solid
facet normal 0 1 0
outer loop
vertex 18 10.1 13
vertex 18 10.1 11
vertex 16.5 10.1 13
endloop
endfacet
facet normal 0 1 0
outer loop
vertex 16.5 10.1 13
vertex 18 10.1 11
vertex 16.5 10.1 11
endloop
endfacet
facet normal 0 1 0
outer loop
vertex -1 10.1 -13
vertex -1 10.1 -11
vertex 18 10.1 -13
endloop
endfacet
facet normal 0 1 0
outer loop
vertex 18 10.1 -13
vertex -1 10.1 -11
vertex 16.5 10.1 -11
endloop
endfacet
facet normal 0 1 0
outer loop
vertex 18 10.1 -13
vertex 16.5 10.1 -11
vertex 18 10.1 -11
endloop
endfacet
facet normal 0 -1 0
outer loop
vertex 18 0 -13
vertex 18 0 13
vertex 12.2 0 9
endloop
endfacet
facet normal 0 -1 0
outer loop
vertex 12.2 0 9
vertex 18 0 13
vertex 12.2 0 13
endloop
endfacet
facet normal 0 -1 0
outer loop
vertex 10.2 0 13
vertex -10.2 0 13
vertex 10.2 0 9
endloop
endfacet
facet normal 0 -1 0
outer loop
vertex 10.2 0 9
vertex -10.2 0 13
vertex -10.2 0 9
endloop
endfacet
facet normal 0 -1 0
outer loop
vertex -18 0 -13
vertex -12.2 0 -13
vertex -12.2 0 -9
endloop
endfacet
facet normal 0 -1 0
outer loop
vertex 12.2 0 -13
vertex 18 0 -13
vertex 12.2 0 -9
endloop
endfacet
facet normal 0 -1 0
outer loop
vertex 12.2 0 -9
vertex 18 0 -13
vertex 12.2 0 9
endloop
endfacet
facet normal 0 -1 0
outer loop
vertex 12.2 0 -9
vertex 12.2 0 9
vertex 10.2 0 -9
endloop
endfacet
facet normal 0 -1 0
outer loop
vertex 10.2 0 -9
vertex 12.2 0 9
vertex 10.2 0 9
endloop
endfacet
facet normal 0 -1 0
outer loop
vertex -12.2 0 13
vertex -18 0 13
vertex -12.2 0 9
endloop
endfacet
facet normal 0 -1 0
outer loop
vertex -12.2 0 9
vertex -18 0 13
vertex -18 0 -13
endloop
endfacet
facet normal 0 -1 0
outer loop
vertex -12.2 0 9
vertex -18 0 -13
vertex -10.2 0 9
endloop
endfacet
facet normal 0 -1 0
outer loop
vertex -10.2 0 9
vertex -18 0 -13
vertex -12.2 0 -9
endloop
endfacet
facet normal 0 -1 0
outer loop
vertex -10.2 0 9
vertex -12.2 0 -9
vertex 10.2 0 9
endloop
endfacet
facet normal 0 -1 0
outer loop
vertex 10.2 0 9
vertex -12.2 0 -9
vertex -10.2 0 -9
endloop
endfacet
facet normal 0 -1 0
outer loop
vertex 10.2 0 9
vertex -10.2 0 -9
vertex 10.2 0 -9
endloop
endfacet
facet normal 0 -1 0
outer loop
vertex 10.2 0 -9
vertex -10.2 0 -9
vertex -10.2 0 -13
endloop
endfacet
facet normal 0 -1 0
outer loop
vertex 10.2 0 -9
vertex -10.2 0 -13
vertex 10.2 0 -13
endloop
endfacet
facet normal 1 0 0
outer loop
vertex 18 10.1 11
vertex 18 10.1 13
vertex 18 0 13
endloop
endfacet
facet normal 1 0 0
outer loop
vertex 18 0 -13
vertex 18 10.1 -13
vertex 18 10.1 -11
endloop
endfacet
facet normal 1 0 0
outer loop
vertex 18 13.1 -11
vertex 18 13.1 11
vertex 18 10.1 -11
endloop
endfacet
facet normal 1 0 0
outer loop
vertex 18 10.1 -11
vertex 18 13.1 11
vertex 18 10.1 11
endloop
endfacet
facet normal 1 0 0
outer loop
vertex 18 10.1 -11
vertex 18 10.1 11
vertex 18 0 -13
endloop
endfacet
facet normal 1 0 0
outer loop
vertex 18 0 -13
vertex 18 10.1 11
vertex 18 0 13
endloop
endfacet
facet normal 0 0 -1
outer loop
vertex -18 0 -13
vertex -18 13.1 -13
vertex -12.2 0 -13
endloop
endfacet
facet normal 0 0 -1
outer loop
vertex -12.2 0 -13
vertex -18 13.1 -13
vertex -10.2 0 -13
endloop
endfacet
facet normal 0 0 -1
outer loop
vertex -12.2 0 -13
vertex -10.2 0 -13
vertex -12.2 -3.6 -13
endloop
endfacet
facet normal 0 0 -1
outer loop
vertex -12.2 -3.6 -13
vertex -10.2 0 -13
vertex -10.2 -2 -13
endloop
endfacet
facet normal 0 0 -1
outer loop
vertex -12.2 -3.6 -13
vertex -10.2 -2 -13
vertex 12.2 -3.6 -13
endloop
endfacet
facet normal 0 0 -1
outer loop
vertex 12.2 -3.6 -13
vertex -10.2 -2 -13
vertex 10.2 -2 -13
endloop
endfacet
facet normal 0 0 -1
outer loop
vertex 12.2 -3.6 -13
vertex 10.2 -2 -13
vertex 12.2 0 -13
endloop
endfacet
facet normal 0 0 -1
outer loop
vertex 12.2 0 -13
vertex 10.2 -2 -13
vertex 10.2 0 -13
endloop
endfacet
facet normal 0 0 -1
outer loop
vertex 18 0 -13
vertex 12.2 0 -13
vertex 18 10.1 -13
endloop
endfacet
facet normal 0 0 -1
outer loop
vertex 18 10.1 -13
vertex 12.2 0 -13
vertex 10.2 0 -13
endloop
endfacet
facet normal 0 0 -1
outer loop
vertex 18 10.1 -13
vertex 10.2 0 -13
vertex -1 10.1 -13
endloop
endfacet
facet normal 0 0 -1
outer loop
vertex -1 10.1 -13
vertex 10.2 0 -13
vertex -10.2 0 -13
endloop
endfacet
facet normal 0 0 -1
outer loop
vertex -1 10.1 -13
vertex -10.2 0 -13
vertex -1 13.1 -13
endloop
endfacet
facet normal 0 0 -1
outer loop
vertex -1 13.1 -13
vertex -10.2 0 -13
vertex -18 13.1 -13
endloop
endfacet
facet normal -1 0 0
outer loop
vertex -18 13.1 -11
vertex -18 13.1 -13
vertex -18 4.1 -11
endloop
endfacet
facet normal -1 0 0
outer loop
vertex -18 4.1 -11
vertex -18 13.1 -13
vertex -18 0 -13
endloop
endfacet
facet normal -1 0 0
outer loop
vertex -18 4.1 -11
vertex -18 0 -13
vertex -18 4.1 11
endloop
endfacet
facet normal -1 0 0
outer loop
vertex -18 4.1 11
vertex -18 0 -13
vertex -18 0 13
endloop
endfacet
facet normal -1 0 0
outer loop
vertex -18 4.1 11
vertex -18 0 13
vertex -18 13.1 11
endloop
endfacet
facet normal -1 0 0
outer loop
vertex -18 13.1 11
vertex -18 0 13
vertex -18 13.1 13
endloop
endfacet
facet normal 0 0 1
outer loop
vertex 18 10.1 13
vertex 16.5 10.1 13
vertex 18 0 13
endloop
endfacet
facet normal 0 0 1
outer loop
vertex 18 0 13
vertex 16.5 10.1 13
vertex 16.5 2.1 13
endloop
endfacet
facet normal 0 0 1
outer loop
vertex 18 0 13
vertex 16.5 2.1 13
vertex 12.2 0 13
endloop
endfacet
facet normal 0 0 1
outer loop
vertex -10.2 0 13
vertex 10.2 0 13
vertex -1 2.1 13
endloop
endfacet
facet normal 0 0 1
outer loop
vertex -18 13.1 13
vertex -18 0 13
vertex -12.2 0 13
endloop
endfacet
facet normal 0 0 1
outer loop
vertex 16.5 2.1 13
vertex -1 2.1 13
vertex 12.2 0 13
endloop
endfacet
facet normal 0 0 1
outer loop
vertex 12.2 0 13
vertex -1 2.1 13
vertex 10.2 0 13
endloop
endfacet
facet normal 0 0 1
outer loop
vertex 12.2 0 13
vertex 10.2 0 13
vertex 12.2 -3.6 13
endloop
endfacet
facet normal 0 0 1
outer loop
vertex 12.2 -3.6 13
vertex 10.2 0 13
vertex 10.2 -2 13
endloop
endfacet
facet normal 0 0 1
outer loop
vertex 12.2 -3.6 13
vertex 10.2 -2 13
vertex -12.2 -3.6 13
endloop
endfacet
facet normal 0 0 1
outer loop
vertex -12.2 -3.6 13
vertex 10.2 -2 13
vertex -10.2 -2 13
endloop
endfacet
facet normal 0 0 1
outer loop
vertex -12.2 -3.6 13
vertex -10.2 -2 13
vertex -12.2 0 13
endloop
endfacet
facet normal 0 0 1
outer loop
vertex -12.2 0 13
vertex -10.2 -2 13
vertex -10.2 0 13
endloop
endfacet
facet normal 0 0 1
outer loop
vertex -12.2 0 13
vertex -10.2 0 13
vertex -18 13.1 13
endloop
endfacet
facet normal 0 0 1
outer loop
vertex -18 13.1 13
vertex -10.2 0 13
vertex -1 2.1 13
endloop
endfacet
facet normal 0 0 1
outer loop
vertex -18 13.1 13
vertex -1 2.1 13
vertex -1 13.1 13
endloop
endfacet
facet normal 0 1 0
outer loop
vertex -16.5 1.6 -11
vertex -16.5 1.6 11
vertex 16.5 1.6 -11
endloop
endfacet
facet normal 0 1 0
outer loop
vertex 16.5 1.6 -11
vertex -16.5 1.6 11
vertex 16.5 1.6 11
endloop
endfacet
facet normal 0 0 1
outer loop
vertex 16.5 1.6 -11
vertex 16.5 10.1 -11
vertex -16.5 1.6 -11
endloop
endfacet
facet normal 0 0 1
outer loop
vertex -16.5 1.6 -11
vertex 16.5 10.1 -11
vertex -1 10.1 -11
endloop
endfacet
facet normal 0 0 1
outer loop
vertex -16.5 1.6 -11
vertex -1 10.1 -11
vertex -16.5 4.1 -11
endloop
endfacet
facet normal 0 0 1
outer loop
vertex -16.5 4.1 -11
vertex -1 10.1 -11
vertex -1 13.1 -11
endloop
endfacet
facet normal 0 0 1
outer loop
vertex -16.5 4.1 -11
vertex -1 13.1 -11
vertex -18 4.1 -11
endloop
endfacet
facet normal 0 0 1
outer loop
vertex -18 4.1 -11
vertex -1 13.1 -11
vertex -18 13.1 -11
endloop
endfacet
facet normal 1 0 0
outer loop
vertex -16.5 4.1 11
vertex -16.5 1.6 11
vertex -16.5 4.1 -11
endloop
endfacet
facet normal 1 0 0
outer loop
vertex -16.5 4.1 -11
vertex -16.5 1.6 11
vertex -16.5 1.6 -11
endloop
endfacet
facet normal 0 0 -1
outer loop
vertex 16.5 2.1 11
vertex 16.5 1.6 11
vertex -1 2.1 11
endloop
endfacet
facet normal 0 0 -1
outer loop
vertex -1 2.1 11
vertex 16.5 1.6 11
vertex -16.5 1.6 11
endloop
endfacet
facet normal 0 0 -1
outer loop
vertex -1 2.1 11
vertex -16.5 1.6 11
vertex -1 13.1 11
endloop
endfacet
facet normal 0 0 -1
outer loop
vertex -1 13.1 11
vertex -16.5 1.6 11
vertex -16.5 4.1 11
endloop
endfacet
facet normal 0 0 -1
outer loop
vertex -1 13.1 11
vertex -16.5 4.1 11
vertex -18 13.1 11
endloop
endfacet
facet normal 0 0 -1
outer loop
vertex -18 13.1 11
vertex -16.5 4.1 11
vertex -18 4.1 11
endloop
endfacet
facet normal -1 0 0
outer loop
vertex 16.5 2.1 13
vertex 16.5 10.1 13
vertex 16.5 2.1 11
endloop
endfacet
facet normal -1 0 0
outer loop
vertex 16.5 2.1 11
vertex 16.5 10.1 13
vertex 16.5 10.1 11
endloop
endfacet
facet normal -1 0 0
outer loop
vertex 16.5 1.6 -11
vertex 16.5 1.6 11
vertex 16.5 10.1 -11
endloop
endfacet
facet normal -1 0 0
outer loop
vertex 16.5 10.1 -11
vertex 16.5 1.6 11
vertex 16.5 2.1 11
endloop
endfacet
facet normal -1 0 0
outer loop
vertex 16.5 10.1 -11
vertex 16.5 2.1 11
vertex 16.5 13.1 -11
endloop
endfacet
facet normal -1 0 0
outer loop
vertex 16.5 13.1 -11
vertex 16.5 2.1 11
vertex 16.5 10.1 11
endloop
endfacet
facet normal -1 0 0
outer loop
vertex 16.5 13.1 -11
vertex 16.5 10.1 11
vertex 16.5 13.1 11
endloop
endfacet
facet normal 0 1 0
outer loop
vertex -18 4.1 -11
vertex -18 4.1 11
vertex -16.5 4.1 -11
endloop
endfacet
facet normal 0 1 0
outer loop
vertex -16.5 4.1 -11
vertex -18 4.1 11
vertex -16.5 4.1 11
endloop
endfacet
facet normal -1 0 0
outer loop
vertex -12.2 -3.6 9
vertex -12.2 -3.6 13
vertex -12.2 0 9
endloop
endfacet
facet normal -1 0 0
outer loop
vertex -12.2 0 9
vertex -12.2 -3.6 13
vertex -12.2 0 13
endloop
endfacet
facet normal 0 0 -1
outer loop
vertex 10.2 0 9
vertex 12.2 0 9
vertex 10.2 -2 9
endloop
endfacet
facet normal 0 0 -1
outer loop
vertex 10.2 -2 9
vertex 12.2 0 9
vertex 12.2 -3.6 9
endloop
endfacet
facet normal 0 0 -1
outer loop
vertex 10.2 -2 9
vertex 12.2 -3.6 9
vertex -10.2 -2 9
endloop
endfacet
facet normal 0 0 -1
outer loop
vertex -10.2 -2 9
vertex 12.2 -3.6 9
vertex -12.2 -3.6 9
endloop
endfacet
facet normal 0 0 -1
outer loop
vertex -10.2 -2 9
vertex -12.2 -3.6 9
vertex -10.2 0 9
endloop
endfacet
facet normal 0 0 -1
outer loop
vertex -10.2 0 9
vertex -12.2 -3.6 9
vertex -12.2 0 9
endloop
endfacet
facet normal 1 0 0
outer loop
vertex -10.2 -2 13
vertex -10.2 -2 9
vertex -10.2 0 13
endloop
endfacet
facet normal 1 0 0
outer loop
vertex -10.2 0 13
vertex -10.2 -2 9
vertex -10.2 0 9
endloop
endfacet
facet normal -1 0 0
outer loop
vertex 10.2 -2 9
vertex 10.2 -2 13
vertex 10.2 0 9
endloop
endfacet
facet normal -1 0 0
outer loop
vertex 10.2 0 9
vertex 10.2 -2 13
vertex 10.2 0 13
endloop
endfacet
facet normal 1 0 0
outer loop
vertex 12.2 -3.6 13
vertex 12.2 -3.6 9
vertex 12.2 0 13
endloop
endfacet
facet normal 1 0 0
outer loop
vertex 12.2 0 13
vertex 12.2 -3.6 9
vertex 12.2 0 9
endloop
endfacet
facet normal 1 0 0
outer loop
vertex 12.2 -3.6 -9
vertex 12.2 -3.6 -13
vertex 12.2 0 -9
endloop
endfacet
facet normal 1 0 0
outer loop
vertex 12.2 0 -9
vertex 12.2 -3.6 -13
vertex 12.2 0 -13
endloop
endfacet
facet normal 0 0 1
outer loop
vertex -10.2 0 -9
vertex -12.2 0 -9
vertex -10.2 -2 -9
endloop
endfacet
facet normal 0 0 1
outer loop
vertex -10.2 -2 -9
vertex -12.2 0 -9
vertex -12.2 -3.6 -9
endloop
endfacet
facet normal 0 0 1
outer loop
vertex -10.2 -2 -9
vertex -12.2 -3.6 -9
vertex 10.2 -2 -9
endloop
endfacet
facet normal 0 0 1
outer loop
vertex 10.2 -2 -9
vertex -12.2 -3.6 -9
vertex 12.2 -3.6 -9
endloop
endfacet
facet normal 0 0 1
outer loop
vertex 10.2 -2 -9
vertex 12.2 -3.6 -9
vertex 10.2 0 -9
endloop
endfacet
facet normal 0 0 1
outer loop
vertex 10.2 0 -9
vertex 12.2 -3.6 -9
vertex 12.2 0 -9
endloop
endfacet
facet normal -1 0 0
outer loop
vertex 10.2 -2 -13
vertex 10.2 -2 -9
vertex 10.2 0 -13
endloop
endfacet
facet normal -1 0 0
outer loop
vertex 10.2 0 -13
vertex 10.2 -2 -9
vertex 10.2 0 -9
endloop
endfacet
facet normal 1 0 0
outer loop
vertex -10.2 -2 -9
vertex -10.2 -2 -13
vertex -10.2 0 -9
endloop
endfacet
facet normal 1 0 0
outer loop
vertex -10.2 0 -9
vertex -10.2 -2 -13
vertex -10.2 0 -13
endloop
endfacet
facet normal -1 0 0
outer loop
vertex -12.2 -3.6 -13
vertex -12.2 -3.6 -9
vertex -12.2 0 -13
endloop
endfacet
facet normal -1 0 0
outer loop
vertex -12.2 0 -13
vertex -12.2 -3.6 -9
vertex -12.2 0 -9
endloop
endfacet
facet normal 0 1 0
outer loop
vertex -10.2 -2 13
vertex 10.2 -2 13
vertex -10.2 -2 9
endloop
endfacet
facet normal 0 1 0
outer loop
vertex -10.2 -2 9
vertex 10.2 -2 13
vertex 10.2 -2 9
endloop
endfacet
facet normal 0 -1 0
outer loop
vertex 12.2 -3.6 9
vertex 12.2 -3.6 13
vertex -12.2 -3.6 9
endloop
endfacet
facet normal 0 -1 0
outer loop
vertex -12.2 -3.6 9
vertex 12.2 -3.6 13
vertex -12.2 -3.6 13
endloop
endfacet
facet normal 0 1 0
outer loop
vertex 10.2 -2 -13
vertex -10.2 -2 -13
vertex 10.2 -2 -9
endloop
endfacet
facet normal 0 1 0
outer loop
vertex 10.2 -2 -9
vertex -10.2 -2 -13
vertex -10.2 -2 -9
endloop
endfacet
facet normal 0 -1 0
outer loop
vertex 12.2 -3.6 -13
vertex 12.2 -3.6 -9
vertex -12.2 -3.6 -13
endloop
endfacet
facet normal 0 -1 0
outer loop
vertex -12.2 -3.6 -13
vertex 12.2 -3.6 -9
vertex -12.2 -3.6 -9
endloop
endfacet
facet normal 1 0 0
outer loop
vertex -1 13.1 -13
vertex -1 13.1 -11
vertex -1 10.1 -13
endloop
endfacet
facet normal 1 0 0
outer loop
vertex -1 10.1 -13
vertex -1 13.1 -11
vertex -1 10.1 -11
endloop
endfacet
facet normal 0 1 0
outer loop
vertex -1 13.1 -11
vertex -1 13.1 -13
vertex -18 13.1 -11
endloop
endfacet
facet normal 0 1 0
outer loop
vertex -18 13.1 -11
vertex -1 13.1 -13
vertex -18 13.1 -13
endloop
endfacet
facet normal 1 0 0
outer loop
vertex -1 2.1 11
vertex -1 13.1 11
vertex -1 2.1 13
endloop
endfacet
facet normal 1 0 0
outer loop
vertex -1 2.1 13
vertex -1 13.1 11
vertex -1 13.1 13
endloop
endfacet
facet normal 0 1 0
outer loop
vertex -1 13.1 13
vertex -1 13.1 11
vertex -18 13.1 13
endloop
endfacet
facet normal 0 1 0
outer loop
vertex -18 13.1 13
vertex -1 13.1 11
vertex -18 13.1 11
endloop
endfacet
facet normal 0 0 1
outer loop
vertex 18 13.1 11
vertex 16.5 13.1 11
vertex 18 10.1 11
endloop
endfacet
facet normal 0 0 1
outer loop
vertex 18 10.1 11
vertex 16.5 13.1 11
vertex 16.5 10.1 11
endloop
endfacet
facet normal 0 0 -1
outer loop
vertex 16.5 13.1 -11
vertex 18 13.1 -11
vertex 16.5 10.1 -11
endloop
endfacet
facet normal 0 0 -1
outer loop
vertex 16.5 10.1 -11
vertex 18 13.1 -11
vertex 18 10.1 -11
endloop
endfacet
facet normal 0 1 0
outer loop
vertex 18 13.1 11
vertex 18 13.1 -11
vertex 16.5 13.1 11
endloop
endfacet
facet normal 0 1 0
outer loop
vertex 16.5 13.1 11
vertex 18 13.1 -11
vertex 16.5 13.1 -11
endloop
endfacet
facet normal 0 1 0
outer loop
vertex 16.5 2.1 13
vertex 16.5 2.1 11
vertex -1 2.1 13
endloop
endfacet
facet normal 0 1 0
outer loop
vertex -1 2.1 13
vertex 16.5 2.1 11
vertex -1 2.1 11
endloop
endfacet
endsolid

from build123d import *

# Parameters (mm, degrees)
SKETCH_1_W          = 36
SKETCH_1_H          = 26
EXTRUDE_1_DEPTH     = 14.6
SKETCH_2_W          = 33
SKETCH_2_H          = 22
CUT_EXTRUDE_1_DEPTH = 13
SKETCH_3_W          = 36
SKETCH_3_H          = 26
CUT_EXTRUDE_2_DEPTH = 4.5
SKETCH_4_W          = 1.5
SKETCH_4_H          = 22
CUT_EXTRUDE_3_DEPTH = 6
SKETCH_5_W          = 2
SKETCH_5_H          = 4
EXTRUDE_2_DEPTH     = 2
SKETCH_6_W          = 24.4
SKETCH_6_H          = 4
EXTRUDE_3_DEPTH     = 1.6
SKETCH_7_W          = 17
SKETCH_7_H          = 2
SKETCH_7_W_2        = 1.5
SKETCH_7_H_2        = 22
EXTRUDE_4_DEPTH     = 3
SKETCH_8_W          = 17.5
SKETCH_8_H          = 2
CUT_EXTRUDE_5_DEPTH = 8


with BuildPart() as part:
    # 草图1 → 凸台-拉伸1 (new body)
    with BuildSketch(Plane(origin=(0, 0, 0), x_dir=(1, 0, 0), z_dir=(0, 1, 0))):
        Rectangle(SKETCH_1_W, SKETCH_1_H)
    extrude(amount=EXTRUDE_1_DEPTH)

    # 草图2 → 切除-拉伸1 (cut)
    with BuildSketch(Plane(origin=(0, 14.6, 0), x_dir=(1, 0, 0), z_dir=(0, 1, 0))):
        Rectangle(SKETCH_2_W, SKETCH_2_H)
    extrude(amount=-CUT_EXTRUDE_1_DEPTH, mode=Mode.SUBTRACT)

    # 草图3 → 切除-拉伸2 (cut)
    with BuildSketch(Plane(origin=(0, 14.6, 0), x_dir=(1, 0, 0), z_dir=(0, 1, 0))):
        Rectangle(SKETCH_3_W, SKETCH_3_H)
    extrude(amount=-CUT_EXTRUDE_2_DEPTH, mode=Mode.SUBTRACT)

    # 草图4 → 切除-拉伸3 (cut)
    with BuildSketch(Plane(origin=(0, 10.1, 0), x_dir=(1, 0, 0), z_dir=(0, 1, 0))):
        with Locations((-17.25, 0)):
            Rectangle(SKETCH_4_W, SKETCH_4_H)
    extrude(amount=-CUT_EXTRUDE_3_DEPTH, mode=Mode.SUBTRACT)

    # 草图5 → 凸台-拉伸2 (add)
    with BuildSketch(Plane(origin=(0, 0, 0), x_dir=(-1, 0, 0), z_dir=(0, -1, 0))):
        with Locations((-11.2, -11)):
            Rectangle(SKETCH_5_W, SKETCH_5_H)
        with Locations((11.2, -11)):
            Rectangle(SKETCH_5_W, SKETCH_5_H)
        with Locations((-11.2, 11)):
            Rectangle(SKETCH_5_W, SKETCH_5_H)
        with Locations((11.2, 11)):
            Rectangle(SKETCH_5_W, SKETCH_5_H)
    extrude(amount=EXTRUDE_2_DEPTH)

    # 草图6 → 凸台-拉伸3 (add)
    with BuildSketch(Plane(origin=(0, -2, 0), x_dir=(-1, 0, 0), z_dir=(0, -1, 0))):
        with Locations((0, -11)):
            Rectangle(SKETCH_6_W, SKETCH_6_H)
        with Locations((0, 11)):
            Rectangle(SKETCH_6_W, SKETCH_6_H)
    extrude(amount=EXTRUDE_3_DEPTH)

    # 草图7 → 凸台-拉伸4 (add)
    with BuildSketch(Plane(origin=(0, 10.1, 0), x_dir=(1, 0, 0), z_dir=(0, 1, 0))):
        with Locations((-9.5, 12)):
            Rectangle(SKETCH_7_W, SKETCH_7_H)
        with Locations((-9.5, -12)):
            Rectangle(SKETCH_7_W, SKETCH_7_H)
        with Locations((17.25, 0)):
            Rectangle(SKETCH_7_W_2, SKETCH_7_H_2)
    extrude(amount=EXTRUDE_4_DEPTH)

    # 草图8 → 切除-拉伸5 (cut)
    with BuildSketch(Plane(origin=(0, 10.1, 0), x_dir=(1, 0, 0), z_dir=(0, 1, 0))):
        with Locations((7.75, -12)):
            Rectangle(SKETCH_8_W, SKETCH_8_H)
    extrude(amount=-CUT_EXTRUDE_5_DEPTH, mode=Mode.SUBTRACT)


solid = part.part
